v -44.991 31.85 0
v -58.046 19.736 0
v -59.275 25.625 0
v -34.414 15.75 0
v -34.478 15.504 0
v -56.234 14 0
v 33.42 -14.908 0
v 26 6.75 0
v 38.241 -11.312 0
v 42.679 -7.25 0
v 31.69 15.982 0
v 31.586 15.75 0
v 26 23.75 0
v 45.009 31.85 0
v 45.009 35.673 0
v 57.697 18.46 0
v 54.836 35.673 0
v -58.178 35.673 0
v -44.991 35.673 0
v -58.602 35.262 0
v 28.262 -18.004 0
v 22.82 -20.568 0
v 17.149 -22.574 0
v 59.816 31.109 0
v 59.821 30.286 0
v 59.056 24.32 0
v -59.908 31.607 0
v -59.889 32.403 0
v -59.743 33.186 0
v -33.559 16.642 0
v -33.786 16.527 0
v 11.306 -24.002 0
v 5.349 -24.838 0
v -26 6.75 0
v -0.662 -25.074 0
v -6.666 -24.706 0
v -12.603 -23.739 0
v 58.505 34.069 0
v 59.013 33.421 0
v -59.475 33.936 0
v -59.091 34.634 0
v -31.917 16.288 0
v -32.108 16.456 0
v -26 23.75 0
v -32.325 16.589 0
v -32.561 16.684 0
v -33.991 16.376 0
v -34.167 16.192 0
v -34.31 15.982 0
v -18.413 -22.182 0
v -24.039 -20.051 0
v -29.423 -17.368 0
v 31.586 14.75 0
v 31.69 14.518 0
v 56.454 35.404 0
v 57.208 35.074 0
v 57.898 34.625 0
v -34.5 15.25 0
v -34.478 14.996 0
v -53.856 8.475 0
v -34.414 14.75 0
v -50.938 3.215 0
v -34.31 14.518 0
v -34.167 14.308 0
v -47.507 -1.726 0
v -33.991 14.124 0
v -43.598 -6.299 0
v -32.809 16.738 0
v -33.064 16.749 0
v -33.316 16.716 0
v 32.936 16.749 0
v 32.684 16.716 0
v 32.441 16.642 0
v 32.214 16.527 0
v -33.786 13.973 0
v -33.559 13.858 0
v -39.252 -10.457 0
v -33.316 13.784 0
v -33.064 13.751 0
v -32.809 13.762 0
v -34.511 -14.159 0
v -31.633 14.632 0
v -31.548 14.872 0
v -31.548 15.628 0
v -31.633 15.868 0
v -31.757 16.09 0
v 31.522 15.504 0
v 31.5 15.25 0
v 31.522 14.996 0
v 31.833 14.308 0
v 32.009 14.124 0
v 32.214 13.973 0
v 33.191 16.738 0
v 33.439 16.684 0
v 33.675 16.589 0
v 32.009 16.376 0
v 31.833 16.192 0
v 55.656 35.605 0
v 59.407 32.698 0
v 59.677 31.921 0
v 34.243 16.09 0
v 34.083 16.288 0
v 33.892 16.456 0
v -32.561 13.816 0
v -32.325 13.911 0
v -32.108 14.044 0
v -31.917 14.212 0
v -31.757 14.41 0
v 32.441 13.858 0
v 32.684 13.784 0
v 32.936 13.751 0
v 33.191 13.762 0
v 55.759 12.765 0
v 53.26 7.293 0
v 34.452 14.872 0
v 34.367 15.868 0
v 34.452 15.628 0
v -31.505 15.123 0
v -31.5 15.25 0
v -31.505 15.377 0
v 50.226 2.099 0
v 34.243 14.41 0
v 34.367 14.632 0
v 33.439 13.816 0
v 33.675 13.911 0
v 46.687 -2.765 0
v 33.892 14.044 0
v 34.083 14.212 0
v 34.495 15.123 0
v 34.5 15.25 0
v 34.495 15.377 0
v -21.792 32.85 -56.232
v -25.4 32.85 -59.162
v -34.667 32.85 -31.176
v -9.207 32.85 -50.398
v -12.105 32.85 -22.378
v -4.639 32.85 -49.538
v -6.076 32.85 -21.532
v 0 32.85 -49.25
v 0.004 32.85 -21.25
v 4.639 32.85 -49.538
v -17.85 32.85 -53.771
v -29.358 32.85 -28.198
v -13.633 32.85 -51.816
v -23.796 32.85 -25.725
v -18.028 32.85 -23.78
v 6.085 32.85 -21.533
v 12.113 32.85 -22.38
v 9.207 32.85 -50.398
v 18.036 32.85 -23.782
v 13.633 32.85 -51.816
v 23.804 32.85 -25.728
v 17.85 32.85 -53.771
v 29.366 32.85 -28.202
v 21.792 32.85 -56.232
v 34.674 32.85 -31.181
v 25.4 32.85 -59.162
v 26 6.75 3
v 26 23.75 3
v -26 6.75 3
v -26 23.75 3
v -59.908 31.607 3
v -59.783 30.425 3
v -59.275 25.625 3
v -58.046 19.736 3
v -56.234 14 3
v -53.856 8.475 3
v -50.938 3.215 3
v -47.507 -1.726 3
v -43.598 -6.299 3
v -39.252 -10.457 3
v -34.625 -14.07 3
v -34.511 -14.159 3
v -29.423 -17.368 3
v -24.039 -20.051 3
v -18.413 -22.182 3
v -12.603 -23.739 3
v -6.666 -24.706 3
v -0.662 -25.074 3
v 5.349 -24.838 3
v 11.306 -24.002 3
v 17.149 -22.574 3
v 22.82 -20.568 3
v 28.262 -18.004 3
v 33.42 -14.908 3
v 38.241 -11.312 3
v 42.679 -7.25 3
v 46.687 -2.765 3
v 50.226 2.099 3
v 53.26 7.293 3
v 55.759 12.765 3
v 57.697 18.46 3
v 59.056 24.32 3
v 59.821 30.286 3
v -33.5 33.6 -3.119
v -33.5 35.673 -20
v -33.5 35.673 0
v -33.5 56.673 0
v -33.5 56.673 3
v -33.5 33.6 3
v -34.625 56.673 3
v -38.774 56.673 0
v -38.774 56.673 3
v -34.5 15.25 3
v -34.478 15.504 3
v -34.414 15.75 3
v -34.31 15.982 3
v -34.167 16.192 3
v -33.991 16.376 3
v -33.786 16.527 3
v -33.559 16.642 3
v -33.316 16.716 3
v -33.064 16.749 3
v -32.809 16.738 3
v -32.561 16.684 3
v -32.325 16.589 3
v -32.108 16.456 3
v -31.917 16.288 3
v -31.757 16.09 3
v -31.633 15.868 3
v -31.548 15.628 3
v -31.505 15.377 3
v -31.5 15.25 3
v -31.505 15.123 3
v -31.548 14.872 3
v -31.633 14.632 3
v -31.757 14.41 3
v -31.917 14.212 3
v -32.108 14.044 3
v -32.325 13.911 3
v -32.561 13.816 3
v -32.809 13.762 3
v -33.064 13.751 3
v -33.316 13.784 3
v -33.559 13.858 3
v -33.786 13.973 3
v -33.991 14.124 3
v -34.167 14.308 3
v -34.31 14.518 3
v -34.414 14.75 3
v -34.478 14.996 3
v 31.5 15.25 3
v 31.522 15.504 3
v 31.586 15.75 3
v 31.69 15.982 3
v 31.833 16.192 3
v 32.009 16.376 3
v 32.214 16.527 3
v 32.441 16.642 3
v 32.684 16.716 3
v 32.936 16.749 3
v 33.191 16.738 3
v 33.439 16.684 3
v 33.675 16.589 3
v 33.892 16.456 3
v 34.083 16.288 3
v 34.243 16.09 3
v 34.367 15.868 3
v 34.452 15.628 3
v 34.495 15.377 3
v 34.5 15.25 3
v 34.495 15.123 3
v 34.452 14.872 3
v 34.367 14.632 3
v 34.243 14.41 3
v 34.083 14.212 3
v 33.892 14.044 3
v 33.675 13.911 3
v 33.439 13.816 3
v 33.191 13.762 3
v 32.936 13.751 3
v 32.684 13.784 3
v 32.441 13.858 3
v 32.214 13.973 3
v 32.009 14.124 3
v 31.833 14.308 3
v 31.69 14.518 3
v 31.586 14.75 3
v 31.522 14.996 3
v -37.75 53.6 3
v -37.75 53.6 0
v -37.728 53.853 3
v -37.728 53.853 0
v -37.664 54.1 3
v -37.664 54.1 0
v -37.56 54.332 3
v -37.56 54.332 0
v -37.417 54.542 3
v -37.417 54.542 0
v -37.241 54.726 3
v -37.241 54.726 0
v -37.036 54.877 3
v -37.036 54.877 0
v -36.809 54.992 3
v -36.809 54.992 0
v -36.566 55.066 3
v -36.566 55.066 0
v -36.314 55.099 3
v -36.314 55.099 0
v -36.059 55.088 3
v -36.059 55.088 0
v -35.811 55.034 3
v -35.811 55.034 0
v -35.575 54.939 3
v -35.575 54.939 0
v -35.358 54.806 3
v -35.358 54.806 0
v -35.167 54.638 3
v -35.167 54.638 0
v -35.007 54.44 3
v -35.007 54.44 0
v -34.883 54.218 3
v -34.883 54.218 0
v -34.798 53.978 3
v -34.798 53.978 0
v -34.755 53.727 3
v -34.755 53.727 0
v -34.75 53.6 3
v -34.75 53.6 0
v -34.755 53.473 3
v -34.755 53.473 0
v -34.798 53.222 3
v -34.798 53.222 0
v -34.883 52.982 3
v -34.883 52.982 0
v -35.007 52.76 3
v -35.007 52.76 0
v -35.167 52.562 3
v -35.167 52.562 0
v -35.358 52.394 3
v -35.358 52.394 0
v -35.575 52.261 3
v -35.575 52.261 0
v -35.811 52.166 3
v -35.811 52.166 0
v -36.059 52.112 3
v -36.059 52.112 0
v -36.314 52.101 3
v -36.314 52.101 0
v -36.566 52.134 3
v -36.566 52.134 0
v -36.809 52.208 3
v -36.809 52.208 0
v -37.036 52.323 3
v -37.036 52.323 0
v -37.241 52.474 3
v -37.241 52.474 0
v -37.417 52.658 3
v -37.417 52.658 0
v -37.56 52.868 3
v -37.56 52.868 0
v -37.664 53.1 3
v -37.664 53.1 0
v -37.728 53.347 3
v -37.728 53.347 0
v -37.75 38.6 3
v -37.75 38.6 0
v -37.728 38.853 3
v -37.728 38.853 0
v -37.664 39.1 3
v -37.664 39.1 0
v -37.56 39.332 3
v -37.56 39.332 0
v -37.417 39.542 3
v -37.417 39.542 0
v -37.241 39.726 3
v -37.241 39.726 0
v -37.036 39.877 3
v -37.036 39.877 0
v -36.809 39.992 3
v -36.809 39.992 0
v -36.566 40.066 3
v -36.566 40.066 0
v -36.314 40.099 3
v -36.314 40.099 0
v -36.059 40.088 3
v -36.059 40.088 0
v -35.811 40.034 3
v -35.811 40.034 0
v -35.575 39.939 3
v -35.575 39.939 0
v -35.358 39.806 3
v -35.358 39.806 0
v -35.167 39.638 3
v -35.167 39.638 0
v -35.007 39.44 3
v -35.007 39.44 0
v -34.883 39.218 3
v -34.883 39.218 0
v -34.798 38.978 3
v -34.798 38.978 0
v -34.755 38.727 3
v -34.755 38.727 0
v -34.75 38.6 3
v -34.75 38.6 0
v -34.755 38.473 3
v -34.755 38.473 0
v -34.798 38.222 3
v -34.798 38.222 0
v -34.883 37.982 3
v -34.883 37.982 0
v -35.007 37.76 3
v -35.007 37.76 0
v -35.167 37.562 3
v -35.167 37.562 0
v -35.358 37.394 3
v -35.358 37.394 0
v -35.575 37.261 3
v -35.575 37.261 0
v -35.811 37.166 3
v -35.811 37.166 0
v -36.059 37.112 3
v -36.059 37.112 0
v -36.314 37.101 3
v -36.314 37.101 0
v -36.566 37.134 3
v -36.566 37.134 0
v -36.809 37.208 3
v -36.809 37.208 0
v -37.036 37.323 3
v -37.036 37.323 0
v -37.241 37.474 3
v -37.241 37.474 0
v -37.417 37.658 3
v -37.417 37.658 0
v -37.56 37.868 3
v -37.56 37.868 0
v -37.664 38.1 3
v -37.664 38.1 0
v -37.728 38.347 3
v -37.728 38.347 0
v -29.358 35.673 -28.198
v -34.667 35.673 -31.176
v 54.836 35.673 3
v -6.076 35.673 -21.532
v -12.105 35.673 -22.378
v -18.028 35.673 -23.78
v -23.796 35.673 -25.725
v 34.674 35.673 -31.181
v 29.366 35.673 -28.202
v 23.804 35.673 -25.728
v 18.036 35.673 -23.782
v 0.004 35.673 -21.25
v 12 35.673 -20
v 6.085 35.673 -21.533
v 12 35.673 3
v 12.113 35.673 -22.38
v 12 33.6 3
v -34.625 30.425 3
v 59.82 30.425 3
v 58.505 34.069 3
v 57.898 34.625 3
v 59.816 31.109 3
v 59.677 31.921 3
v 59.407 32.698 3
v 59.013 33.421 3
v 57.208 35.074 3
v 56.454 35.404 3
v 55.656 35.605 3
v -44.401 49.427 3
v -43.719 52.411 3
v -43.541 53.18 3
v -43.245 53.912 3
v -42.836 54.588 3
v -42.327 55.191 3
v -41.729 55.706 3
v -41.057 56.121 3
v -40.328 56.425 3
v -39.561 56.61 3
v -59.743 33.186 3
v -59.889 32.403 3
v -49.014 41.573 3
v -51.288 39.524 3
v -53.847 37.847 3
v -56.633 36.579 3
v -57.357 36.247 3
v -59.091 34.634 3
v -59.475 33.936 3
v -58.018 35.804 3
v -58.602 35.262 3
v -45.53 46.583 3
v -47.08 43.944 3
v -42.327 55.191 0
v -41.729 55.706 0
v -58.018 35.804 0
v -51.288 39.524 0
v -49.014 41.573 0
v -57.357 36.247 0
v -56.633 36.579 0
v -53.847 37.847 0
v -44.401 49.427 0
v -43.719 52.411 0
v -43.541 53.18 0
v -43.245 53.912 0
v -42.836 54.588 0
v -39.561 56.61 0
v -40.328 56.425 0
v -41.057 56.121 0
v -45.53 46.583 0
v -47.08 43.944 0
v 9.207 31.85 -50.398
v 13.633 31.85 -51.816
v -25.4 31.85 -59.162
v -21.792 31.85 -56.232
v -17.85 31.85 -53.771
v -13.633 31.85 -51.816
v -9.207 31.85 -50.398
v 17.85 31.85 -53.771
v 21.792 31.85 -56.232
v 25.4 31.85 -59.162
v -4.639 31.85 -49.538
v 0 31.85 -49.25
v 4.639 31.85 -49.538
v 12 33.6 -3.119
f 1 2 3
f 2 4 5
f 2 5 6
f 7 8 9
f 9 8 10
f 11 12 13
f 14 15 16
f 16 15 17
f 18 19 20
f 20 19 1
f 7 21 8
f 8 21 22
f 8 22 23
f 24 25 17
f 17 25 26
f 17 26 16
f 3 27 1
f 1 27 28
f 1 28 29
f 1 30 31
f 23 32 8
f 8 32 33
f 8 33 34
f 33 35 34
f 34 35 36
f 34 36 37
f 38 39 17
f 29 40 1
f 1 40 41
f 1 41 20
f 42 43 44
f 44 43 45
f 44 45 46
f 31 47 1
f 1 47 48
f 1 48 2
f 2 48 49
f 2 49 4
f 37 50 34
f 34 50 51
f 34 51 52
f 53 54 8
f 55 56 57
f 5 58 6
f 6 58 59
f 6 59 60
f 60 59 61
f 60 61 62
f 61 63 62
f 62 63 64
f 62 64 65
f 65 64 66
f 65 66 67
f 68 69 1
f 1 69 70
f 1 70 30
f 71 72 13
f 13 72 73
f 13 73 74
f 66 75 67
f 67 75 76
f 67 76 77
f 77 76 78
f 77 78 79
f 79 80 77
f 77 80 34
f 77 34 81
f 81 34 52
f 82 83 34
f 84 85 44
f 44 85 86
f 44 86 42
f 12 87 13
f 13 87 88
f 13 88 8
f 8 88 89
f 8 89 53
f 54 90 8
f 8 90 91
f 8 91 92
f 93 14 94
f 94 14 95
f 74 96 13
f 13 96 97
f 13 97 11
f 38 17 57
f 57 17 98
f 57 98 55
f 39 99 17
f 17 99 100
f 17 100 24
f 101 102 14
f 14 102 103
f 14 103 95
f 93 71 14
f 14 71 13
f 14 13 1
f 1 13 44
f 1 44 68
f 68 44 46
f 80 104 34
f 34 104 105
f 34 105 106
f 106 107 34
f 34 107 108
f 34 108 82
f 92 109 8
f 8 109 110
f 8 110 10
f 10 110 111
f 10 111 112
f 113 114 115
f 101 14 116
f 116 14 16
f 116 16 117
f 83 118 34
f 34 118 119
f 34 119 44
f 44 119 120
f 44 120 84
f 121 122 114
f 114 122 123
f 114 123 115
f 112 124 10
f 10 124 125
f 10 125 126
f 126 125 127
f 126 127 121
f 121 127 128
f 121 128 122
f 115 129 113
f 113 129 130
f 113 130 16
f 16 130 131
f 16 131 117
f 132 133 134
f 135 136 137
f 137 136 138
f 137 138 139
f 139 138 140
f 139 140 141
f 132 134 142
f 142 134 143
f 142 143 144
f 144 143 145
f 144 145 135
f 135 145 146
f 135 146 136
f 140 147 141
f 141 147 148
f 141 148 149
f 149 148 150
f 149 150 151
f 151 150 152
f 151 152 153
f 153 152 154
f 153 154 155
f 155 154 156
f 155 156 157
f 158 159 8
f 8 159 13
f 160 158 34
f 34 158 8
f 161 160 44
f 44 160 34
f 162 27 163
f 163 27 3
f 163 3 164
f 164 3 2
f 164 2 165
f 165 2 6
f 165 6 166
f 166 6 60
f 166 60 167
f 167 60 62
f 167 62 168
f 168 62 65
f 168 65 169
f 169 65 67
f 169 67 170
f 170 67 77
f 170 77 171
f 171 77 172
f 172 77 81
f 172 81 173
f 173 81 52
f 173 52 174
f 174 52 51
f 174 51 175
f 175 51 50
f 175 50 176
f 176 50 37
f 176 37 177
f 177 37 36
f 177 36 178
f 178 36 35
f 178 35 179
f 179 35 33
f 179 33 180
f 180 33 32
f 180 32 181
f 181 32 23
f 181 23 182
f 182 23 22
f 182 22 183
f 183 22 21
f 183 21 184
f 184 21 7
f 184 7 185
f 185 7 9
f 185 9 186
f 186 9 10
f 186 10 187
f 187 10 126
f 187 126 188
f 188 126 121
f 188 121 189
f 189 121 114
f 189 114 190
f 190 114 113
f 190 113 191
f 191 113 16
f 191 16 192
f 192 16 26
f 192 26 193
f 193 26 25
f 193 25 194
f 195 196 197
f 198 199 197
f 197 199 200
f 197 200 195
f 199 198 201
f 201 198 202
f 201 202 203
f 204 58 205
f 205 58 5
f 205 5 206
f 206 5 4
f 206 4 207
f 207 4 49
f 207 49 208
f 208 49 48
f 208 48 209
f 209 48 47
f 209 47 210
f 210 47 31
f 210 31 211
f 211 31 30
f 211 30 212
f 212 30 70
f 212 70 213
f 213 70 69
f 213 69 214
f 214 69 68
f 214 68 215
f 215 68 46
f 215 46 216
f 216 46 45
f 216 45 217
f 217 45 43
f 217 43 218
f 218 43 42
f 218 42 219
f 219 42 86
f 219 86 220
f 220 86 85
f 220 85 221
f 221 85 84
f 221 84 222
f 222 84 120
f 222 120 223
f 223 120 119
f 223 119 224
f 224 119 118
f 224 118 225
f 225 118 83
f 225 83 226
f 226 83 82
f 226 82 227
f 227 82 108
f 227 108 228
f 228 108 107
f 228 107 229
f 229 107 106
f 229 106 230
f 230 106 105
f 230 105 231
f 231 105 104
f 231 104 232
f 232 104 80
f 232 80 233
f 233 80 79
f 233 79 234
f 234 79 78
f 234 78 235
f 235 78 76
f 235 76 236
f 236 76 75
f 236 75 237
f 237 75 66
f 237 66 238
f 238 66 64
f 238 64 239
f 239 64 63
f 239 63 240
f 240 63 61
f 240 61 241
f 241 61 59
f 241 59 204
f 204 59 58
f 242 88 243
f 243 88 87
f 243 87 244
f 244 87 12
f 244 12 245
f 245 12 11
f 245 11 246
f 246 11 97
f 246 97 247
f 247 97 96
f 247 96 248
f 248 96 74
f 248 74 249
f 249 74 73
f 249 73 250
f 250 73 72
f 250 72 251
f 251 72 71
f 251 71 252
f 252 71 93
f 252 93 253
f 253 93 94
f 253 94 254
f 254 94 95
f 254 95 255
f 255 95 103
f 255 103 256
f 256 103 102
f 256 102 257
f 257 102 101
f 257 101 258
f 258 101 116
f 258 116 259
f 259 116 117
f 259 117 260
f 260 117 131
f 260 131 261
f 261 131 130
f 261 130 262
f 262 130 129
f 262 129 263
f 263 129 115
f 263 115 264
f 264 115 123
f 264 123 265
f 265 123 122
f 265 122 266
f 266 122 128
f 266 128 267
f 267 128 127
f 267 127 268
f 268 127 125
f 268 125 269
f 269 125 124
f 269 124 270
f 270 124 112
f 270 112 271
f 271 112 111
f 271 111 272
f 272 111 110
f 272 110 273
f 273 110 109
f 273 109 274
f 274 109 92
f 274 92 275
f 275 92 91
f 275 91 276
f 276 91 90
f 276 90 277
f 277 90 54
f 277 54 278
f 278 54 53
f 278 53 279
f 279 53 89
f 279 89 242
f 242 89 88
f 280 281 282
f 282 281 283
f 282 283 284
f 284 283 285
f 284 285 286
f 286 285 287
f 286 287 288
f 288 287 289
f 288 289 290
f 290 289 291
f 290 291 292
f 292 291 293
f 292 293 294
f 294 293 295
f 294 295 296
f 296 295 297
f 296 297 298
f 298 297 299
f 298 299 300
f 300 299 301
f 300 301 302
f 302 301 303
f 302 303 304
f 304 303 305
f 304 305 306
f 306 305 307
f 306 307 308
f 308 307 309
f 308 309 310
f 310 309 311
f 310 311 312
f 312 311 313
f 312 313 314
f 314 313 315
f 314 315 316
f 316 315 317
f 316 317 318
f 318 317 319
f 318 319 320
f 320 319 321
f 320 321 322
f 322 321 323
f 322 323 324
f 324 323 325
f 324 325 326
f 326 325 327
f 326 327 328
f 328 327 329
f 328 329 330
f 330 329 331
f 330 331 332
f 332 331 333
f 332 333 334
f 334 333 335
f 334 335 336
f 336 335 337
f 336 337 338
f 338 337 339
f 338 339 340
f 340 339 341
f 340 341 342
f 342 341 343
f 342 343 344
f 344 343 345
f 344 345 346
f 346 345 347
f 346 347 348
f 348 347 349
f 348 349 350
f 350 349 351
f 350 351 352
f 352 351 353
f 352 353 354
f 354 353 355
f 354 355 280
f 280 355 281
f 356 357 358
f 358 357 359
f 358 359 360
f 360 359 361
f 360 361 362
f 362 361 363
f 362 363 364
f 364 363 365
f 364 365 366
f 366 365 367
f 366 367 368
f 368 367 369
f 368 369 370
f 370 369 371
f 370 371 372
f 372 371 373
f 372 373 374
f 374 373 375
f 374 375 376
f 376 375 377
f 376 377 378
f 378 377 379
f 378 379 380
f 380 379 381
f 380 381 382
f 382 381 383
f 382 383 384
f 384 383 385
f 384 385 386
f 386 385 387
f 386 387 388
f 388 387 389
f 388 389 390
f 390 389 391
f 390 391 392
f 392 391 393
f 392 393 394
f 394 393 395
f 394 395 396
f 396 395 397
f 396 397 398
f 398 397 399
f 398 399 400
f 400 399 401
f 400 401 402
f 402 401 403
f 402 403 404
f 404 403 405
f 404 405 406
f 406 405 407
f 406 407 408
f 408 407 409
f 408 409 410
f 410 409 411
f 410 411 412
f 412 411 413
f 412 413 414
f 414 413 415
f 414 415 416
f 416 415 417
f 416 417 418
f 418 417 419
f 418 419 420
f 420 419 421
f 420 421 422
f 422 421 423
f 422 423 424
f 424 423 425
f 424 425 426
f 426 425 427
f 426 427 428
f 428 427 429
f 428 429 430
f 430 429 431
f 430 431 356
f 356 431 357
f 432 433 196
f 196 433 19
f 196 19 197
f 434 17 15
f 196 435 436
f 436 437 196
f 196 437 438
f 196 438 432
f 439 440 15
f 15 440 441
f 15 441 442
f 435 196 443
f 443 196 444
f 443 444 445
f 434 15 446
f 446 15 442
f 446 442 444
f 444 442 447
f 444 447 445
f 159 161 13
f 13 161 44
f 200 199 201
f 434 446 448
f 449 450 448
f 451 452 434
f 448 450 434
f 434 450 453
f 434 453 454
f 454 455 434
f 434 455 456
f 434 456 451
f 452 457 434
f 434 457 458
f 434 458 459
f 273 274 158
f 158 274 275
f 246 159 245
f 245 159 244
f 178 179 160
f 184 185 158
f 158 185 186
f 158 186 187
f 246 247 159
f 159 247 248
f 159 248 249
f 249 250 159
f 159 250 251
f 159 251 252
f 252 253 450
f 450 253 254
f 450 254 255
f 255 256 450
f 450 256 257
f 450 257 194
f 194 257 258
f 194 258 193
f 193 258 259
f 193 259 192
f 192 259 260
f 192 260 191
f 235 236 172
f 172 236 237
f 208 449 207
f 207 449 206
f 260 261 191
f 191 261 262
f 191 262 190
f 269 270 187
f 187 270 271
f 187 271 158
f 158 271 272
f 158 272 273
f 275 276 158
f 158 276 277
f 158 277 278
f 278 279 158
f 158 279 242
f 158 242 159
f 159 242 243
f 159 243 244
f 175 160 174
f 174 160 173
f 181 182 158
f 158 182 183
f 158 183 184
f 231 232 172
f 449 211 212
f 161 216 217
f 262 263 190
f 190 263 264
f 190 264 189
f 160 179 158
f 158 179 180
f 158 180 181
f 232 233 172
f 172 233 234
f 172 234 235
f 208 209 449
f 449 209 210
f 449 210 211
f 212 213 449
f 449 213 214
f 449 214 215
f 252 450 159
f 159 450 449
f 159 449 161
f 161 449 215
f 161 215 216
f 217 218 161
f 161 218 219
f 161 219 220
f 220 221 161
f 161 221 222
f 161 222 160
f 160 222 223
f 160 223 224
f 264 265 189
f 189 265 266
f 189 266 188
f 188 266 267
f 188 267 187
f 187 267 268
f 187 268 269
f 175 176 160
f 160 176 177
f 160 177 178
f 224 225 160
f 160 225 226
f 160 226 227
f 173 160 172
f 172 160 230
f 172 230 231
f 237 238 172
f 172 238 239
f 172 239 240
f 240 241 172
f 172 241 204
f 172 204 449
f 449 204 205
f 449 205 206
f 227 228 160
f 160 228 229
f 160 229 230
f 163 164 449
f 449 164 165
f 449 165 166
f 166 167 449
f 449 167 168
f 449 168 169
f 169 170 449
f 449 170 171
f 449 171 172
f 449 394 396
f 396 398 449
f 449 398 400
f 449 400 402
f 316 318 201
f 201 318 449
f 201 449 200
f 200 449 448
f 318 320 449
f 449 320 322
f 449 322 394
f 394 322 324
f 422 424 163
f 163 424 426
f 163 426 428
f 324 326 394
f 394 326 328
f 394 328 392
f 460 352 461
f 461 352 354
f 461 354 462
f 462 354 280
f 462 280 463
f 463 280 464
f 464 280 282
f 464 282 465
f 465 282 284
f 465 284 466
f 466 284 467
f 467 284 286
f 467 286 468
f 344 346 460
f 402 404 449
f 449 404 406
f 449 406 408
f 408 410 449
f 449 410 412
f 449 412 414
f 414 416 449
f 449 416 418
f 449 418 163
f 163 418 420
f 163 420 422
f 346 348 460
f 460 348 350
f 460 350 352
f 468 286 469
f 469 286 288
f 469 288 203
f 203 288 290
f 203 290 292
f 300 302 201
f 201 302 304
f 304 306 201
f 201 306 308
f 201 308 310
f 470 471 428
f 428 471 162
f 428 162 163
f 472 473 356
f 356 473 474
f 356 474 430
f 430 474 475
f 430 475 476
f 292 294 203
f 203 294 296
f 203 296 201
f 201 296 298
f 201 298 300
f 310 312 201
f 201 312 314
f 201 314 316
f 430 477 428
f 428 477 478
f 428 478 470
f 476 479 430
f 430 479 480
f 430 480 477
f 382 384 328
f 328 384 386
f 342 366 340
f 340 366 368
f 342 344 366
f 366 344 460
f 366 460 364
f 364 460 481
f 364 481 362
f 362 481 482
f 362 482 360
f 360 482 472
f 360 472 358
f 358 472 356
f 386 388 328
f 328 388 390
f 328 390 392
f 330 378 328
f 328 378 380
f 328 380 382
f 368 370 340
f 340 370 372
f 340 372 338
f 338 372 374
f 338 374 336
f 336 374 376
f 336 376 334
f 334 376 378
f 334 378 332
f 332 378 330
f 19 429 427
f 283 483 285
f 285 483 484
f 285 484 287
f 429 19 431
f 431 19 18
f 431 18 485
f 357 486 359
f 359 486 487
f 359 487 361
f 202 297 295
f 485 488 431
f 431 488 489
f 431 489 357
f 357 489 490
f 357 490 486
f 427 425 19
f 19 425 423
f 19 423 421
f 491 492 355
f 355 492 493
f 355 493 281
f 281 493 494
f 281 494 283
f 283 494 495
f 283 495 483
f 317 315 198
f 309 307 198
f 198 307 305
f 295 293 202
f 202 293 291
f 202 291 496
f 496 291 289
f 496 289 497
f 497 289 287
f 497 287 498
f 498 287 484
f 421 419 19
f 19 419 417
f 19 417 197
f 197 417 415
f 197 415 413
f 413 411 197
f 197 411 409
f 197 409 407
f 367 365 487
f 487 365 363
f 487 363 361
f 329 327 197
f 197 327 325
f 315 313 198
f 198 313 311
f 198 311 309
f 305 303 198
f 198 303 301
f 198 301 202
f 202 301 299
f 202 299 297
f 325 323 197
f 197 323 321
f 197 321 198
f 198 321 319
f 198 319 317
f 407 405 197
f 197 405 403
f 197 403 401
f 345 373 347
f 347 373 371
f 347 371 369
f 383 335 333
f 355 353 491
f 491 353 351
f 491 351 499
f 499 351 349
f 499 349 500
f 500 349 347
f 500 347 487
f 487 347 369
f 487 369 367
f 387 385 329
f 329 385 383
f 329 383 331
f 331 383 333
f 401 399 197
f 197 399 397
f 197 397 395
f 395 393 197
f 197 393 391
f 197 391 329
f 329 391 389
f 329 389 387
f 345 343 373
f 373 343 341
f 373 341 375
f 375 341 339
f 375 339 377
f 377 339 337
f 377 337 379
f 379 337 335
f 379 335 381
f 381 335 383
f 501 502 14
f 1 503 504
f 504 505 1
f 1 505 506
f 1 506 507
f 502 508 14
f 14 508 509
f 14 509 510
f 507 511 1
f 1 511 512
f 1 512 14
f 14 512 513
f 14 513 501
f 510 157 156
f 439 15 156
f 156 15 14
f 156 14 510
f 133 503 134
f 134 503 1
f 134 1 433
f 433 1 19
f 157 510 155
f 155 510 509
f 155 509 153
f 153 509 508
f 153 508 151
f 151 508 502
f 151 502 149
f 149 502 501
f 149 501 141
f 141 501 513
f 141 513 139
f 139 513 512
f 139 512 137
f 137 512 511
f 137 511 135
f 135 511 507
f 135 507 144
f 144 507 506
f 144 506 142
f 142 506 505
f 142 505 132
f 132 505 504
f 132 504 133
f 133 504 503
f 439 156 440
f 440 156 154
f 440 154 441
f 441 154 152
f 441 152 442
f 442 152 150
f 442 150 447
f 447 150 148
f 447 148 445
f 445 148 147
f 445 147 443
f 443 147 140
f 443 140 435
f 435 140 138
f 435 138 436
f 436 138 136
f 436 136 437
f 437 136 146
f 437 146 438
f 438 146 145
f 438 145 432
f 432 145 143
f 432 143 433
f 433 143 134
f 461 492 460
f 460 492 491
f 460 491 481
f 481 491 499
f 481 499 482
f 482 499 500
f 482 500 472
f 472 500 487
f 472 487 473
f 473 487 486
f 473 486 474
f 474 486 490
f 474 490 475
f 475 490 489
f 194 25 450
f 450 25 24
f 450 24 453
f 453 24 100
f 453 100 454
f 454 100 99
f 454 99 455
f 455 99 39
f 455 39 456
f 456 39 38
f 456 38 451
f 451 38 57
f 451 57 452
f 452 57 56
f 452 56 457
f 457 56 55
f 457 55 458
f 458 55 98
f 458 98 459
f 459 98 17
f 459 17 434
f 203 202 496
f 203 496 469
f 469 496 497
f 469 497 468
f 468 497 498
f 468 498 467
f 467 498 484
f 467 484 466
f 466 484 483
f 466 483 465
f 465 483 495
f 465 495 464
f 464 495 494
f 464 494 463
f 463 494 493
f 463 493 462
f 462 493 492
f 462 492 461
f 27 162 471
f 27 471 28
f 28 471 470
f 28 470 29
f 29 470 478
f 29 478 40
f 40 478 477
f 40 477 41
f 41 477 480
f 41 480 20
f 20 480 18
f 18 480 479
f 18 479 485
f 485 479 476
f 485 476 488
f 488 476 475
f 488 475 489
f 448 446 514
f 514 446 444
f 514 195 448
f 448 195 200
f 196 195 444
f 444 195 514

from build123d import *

# Parameters (mm, degrees)
SKETCH1_R           = 1.5
SKETCH1_W           = 52
SKETCH1_H           = 17
BOSS_EXTRUDE1_DEPTH = 3
BOSS_EXTRUDE2_DEPTH = 1
BOSS_EXTRUDE3_DEPTH = 2.822688649
FILLET1_R           = 20
FILLET3_R           = 5
SKETCH6_W           = 45.5
SKETCH6_H           = 2.072688649
CUT_EXTRUDE1_DEPTH  = 3
CHAMFER2_SIZE       = 20
CHAMFER2_SIZE_2     = 2.455691218


with BuildPart() as part:
    # Sketch1 → Boss-Extrude1 (new body)
    with BuildSketch(Plane.XY):
        with BuildLine():
            Line((-33.5, 56.672688649), (-43.5, 56.672688649))
            Line((-43.5, 56.672688649), (-43.5, 35.672688649))
            Line((-43.5, 35.672688649), (-59.995312317, 35.672688649))
            ThreePointArc((-59.995312317, 35.672688649), (-59.999578012, 34.697658936), (-59.9879988, 33.722688649))
            ThreePointArc((-59.9879988, 33.722688649), (0, -25.077311351), (59.9879988, 33.722688649))
            ThreePointArc((59.9879988, 33.722688649), (59.999578012, 34.697658936), (59.995312317, 35.672688649))
            Line((59.995312317, 35.672688649), (12, 35.672688649))
            Line((12, 35.672688649), (-33.5, 35.672688649))
            Line((-33.5, 35.672688649), (-33.5, 56.672688649))
        make_face()
        with Locations((-33, 15.25)):
            Circle(SKETCH1_R, mode=Mode.SUBTRACT)
        with Locations((0, 15.25)):
            Rectangle(SKETCH1_W, SKETCH1_H, mode=Mode.SUBTRACT)
        with Locations((33, 15.25)):
            Circle(SKETCH1_R, mode=Mode.SUBTRACT)
        with Locations((-36.25, 38.6)):
            Circle(SKETCH1_R, mode=Mode.SUBTRACT)
        with Locations((-36.25, 53.6)):
            Circle(SKETCH1_R, mode=Mode.SUBTRACT)
    extrude(amount=BOSS_EXTRUDE1_DEPTH)

    # Sketch4 → Boss-Extrude2 (add)
    with BuildSketch(Plane(origin=(0, 31.85, 0), x_dir=(1, 0, 0), z_dir=(0, 1, 0))):
        with BuildLine():
            Line((-25.4, 59.162140351), (-44.9909991, 0))
            Line((-44.9909991, 0), (45.0090009, 0))
            Line((45.0090009, 0), (25.4, 59.162140351))
            ThreePointArc((25.4, 59.162140351), (0, 49.25), (-25.4, 59.162140351))
        make_face()
    extrude(amount=BOSS_EXTRUDE2_DEPTH)

    # Sketch5 → Boss-Extrude3 (add)
    with BuildSketch(Plane(origin=(0, 32.85, 0), x_dir=(1, 0, 0), z_dir=(0, 1, 0))):
        with BuildLine():
            Line((-34.667242442, 31.176334461), (-44.9909991, 0))
            Line((-44.9909991, 0), (-44.9909991, -3))
            Line((-44.9909991, -3), (45.0090009, -3))
            Line((45.0090009, -3), (45.0090009, 0))
            Line((45.0090009, 0), (34.674298778, 31.180736875))
            ThreePointArc((34.674298778, 31.180736875), (0.004158519, 21.250000132), (-34.667242442, 31.176334461))
        make_face()
    extrude(amount=BOSS_EXTRUDE3_DEPTH)

    # Fillet1
    # the kernel refuses this fillet: 20 mm, written as the material it adds along each edge
    with BuildSketch(Plane(origin=(-43.5, 35.672688649, 0), x_dir=(0, 1, 0), z_dir=(0, 0, 1))) as fillet1_piece_1:
        with BuildLine():
            CenterArc((19.69053489, 20), FILLET1_R, 190.092298101, 79.907701899)
            Line((0, 16.495312317), (-0.393810698, 16.425218563))
            ThreePointArc((-0.393810698, 16.425218563), (-0.4, 8.247656158), (-0.4, 0))
            Line((-0.4, 0), (0, -0.4))
            Line((0, -0.4), (19.69053489, -0.4))
            Line((19.69053489, -0.4), (19.69053489, 0))
        make_face()
    extrude(amount=3)

    # Fillet3
    fillet3_edges = [part.edges().sort_by_distance(p)[0] for p in [
        (59.995312317, 35.672688649, 1.5),
        (-43.5, 56.672688649, 1.5),
        (-59.995312317, 35.672688649, 1.5),
    ]]
    fillet(fillet3_edges, radius=FILLET3_R)

    # Sketch6 → Cut-Extrude1 (cut)
    with BuildSketch(Plane.XY.offset(3)):
        with Locations((-10.75, 34.636344325)):
            Rectangle(SKETCH6_W, SKETCH6_H)
    extrude(amount=-CUT_EXTRUDE1_DEPTH, mode=Mode.SUBTRACT)

    # Chamfer2
    # the kernel refuses this chamfer: 20, 2.455691218 mm, written as the material it takes off along each edge
    with BuildSketch(Plane(origin=(-33.5, 35.672688649, 0), x_dir=(0, 0.00468857506979093, -0.9999890085715016), z_dir=(1, 0, 0))) as chamfer2_piece_1_section:
        Polygon((CHAMFER2_SIZE * 0.999989008572, -CHAMFER2_SIZE * 0.00468857506979), (-CHAMFER2_SIZE_2 * 0.0046885750699, -CHAMFER2_SIZE_2 * 0.999989008595), (0, 0), align=None)
    chamfer2_piece_1 = extrude(amount=45.5, mode=Mode.PRIVATE)
    chamfer2_piece_1 = split(chamfer2_piece_1, bisect_by=Plane(origin=(-10.75, 33.6, -6.806954436), z_dir=(0, 1, 0)), keep=Keep.TOP, mode=Mode.PRIVATE)
    add(chamfer2_piece_1, mode=Mode.SUBTRACT)


solid = part.part
